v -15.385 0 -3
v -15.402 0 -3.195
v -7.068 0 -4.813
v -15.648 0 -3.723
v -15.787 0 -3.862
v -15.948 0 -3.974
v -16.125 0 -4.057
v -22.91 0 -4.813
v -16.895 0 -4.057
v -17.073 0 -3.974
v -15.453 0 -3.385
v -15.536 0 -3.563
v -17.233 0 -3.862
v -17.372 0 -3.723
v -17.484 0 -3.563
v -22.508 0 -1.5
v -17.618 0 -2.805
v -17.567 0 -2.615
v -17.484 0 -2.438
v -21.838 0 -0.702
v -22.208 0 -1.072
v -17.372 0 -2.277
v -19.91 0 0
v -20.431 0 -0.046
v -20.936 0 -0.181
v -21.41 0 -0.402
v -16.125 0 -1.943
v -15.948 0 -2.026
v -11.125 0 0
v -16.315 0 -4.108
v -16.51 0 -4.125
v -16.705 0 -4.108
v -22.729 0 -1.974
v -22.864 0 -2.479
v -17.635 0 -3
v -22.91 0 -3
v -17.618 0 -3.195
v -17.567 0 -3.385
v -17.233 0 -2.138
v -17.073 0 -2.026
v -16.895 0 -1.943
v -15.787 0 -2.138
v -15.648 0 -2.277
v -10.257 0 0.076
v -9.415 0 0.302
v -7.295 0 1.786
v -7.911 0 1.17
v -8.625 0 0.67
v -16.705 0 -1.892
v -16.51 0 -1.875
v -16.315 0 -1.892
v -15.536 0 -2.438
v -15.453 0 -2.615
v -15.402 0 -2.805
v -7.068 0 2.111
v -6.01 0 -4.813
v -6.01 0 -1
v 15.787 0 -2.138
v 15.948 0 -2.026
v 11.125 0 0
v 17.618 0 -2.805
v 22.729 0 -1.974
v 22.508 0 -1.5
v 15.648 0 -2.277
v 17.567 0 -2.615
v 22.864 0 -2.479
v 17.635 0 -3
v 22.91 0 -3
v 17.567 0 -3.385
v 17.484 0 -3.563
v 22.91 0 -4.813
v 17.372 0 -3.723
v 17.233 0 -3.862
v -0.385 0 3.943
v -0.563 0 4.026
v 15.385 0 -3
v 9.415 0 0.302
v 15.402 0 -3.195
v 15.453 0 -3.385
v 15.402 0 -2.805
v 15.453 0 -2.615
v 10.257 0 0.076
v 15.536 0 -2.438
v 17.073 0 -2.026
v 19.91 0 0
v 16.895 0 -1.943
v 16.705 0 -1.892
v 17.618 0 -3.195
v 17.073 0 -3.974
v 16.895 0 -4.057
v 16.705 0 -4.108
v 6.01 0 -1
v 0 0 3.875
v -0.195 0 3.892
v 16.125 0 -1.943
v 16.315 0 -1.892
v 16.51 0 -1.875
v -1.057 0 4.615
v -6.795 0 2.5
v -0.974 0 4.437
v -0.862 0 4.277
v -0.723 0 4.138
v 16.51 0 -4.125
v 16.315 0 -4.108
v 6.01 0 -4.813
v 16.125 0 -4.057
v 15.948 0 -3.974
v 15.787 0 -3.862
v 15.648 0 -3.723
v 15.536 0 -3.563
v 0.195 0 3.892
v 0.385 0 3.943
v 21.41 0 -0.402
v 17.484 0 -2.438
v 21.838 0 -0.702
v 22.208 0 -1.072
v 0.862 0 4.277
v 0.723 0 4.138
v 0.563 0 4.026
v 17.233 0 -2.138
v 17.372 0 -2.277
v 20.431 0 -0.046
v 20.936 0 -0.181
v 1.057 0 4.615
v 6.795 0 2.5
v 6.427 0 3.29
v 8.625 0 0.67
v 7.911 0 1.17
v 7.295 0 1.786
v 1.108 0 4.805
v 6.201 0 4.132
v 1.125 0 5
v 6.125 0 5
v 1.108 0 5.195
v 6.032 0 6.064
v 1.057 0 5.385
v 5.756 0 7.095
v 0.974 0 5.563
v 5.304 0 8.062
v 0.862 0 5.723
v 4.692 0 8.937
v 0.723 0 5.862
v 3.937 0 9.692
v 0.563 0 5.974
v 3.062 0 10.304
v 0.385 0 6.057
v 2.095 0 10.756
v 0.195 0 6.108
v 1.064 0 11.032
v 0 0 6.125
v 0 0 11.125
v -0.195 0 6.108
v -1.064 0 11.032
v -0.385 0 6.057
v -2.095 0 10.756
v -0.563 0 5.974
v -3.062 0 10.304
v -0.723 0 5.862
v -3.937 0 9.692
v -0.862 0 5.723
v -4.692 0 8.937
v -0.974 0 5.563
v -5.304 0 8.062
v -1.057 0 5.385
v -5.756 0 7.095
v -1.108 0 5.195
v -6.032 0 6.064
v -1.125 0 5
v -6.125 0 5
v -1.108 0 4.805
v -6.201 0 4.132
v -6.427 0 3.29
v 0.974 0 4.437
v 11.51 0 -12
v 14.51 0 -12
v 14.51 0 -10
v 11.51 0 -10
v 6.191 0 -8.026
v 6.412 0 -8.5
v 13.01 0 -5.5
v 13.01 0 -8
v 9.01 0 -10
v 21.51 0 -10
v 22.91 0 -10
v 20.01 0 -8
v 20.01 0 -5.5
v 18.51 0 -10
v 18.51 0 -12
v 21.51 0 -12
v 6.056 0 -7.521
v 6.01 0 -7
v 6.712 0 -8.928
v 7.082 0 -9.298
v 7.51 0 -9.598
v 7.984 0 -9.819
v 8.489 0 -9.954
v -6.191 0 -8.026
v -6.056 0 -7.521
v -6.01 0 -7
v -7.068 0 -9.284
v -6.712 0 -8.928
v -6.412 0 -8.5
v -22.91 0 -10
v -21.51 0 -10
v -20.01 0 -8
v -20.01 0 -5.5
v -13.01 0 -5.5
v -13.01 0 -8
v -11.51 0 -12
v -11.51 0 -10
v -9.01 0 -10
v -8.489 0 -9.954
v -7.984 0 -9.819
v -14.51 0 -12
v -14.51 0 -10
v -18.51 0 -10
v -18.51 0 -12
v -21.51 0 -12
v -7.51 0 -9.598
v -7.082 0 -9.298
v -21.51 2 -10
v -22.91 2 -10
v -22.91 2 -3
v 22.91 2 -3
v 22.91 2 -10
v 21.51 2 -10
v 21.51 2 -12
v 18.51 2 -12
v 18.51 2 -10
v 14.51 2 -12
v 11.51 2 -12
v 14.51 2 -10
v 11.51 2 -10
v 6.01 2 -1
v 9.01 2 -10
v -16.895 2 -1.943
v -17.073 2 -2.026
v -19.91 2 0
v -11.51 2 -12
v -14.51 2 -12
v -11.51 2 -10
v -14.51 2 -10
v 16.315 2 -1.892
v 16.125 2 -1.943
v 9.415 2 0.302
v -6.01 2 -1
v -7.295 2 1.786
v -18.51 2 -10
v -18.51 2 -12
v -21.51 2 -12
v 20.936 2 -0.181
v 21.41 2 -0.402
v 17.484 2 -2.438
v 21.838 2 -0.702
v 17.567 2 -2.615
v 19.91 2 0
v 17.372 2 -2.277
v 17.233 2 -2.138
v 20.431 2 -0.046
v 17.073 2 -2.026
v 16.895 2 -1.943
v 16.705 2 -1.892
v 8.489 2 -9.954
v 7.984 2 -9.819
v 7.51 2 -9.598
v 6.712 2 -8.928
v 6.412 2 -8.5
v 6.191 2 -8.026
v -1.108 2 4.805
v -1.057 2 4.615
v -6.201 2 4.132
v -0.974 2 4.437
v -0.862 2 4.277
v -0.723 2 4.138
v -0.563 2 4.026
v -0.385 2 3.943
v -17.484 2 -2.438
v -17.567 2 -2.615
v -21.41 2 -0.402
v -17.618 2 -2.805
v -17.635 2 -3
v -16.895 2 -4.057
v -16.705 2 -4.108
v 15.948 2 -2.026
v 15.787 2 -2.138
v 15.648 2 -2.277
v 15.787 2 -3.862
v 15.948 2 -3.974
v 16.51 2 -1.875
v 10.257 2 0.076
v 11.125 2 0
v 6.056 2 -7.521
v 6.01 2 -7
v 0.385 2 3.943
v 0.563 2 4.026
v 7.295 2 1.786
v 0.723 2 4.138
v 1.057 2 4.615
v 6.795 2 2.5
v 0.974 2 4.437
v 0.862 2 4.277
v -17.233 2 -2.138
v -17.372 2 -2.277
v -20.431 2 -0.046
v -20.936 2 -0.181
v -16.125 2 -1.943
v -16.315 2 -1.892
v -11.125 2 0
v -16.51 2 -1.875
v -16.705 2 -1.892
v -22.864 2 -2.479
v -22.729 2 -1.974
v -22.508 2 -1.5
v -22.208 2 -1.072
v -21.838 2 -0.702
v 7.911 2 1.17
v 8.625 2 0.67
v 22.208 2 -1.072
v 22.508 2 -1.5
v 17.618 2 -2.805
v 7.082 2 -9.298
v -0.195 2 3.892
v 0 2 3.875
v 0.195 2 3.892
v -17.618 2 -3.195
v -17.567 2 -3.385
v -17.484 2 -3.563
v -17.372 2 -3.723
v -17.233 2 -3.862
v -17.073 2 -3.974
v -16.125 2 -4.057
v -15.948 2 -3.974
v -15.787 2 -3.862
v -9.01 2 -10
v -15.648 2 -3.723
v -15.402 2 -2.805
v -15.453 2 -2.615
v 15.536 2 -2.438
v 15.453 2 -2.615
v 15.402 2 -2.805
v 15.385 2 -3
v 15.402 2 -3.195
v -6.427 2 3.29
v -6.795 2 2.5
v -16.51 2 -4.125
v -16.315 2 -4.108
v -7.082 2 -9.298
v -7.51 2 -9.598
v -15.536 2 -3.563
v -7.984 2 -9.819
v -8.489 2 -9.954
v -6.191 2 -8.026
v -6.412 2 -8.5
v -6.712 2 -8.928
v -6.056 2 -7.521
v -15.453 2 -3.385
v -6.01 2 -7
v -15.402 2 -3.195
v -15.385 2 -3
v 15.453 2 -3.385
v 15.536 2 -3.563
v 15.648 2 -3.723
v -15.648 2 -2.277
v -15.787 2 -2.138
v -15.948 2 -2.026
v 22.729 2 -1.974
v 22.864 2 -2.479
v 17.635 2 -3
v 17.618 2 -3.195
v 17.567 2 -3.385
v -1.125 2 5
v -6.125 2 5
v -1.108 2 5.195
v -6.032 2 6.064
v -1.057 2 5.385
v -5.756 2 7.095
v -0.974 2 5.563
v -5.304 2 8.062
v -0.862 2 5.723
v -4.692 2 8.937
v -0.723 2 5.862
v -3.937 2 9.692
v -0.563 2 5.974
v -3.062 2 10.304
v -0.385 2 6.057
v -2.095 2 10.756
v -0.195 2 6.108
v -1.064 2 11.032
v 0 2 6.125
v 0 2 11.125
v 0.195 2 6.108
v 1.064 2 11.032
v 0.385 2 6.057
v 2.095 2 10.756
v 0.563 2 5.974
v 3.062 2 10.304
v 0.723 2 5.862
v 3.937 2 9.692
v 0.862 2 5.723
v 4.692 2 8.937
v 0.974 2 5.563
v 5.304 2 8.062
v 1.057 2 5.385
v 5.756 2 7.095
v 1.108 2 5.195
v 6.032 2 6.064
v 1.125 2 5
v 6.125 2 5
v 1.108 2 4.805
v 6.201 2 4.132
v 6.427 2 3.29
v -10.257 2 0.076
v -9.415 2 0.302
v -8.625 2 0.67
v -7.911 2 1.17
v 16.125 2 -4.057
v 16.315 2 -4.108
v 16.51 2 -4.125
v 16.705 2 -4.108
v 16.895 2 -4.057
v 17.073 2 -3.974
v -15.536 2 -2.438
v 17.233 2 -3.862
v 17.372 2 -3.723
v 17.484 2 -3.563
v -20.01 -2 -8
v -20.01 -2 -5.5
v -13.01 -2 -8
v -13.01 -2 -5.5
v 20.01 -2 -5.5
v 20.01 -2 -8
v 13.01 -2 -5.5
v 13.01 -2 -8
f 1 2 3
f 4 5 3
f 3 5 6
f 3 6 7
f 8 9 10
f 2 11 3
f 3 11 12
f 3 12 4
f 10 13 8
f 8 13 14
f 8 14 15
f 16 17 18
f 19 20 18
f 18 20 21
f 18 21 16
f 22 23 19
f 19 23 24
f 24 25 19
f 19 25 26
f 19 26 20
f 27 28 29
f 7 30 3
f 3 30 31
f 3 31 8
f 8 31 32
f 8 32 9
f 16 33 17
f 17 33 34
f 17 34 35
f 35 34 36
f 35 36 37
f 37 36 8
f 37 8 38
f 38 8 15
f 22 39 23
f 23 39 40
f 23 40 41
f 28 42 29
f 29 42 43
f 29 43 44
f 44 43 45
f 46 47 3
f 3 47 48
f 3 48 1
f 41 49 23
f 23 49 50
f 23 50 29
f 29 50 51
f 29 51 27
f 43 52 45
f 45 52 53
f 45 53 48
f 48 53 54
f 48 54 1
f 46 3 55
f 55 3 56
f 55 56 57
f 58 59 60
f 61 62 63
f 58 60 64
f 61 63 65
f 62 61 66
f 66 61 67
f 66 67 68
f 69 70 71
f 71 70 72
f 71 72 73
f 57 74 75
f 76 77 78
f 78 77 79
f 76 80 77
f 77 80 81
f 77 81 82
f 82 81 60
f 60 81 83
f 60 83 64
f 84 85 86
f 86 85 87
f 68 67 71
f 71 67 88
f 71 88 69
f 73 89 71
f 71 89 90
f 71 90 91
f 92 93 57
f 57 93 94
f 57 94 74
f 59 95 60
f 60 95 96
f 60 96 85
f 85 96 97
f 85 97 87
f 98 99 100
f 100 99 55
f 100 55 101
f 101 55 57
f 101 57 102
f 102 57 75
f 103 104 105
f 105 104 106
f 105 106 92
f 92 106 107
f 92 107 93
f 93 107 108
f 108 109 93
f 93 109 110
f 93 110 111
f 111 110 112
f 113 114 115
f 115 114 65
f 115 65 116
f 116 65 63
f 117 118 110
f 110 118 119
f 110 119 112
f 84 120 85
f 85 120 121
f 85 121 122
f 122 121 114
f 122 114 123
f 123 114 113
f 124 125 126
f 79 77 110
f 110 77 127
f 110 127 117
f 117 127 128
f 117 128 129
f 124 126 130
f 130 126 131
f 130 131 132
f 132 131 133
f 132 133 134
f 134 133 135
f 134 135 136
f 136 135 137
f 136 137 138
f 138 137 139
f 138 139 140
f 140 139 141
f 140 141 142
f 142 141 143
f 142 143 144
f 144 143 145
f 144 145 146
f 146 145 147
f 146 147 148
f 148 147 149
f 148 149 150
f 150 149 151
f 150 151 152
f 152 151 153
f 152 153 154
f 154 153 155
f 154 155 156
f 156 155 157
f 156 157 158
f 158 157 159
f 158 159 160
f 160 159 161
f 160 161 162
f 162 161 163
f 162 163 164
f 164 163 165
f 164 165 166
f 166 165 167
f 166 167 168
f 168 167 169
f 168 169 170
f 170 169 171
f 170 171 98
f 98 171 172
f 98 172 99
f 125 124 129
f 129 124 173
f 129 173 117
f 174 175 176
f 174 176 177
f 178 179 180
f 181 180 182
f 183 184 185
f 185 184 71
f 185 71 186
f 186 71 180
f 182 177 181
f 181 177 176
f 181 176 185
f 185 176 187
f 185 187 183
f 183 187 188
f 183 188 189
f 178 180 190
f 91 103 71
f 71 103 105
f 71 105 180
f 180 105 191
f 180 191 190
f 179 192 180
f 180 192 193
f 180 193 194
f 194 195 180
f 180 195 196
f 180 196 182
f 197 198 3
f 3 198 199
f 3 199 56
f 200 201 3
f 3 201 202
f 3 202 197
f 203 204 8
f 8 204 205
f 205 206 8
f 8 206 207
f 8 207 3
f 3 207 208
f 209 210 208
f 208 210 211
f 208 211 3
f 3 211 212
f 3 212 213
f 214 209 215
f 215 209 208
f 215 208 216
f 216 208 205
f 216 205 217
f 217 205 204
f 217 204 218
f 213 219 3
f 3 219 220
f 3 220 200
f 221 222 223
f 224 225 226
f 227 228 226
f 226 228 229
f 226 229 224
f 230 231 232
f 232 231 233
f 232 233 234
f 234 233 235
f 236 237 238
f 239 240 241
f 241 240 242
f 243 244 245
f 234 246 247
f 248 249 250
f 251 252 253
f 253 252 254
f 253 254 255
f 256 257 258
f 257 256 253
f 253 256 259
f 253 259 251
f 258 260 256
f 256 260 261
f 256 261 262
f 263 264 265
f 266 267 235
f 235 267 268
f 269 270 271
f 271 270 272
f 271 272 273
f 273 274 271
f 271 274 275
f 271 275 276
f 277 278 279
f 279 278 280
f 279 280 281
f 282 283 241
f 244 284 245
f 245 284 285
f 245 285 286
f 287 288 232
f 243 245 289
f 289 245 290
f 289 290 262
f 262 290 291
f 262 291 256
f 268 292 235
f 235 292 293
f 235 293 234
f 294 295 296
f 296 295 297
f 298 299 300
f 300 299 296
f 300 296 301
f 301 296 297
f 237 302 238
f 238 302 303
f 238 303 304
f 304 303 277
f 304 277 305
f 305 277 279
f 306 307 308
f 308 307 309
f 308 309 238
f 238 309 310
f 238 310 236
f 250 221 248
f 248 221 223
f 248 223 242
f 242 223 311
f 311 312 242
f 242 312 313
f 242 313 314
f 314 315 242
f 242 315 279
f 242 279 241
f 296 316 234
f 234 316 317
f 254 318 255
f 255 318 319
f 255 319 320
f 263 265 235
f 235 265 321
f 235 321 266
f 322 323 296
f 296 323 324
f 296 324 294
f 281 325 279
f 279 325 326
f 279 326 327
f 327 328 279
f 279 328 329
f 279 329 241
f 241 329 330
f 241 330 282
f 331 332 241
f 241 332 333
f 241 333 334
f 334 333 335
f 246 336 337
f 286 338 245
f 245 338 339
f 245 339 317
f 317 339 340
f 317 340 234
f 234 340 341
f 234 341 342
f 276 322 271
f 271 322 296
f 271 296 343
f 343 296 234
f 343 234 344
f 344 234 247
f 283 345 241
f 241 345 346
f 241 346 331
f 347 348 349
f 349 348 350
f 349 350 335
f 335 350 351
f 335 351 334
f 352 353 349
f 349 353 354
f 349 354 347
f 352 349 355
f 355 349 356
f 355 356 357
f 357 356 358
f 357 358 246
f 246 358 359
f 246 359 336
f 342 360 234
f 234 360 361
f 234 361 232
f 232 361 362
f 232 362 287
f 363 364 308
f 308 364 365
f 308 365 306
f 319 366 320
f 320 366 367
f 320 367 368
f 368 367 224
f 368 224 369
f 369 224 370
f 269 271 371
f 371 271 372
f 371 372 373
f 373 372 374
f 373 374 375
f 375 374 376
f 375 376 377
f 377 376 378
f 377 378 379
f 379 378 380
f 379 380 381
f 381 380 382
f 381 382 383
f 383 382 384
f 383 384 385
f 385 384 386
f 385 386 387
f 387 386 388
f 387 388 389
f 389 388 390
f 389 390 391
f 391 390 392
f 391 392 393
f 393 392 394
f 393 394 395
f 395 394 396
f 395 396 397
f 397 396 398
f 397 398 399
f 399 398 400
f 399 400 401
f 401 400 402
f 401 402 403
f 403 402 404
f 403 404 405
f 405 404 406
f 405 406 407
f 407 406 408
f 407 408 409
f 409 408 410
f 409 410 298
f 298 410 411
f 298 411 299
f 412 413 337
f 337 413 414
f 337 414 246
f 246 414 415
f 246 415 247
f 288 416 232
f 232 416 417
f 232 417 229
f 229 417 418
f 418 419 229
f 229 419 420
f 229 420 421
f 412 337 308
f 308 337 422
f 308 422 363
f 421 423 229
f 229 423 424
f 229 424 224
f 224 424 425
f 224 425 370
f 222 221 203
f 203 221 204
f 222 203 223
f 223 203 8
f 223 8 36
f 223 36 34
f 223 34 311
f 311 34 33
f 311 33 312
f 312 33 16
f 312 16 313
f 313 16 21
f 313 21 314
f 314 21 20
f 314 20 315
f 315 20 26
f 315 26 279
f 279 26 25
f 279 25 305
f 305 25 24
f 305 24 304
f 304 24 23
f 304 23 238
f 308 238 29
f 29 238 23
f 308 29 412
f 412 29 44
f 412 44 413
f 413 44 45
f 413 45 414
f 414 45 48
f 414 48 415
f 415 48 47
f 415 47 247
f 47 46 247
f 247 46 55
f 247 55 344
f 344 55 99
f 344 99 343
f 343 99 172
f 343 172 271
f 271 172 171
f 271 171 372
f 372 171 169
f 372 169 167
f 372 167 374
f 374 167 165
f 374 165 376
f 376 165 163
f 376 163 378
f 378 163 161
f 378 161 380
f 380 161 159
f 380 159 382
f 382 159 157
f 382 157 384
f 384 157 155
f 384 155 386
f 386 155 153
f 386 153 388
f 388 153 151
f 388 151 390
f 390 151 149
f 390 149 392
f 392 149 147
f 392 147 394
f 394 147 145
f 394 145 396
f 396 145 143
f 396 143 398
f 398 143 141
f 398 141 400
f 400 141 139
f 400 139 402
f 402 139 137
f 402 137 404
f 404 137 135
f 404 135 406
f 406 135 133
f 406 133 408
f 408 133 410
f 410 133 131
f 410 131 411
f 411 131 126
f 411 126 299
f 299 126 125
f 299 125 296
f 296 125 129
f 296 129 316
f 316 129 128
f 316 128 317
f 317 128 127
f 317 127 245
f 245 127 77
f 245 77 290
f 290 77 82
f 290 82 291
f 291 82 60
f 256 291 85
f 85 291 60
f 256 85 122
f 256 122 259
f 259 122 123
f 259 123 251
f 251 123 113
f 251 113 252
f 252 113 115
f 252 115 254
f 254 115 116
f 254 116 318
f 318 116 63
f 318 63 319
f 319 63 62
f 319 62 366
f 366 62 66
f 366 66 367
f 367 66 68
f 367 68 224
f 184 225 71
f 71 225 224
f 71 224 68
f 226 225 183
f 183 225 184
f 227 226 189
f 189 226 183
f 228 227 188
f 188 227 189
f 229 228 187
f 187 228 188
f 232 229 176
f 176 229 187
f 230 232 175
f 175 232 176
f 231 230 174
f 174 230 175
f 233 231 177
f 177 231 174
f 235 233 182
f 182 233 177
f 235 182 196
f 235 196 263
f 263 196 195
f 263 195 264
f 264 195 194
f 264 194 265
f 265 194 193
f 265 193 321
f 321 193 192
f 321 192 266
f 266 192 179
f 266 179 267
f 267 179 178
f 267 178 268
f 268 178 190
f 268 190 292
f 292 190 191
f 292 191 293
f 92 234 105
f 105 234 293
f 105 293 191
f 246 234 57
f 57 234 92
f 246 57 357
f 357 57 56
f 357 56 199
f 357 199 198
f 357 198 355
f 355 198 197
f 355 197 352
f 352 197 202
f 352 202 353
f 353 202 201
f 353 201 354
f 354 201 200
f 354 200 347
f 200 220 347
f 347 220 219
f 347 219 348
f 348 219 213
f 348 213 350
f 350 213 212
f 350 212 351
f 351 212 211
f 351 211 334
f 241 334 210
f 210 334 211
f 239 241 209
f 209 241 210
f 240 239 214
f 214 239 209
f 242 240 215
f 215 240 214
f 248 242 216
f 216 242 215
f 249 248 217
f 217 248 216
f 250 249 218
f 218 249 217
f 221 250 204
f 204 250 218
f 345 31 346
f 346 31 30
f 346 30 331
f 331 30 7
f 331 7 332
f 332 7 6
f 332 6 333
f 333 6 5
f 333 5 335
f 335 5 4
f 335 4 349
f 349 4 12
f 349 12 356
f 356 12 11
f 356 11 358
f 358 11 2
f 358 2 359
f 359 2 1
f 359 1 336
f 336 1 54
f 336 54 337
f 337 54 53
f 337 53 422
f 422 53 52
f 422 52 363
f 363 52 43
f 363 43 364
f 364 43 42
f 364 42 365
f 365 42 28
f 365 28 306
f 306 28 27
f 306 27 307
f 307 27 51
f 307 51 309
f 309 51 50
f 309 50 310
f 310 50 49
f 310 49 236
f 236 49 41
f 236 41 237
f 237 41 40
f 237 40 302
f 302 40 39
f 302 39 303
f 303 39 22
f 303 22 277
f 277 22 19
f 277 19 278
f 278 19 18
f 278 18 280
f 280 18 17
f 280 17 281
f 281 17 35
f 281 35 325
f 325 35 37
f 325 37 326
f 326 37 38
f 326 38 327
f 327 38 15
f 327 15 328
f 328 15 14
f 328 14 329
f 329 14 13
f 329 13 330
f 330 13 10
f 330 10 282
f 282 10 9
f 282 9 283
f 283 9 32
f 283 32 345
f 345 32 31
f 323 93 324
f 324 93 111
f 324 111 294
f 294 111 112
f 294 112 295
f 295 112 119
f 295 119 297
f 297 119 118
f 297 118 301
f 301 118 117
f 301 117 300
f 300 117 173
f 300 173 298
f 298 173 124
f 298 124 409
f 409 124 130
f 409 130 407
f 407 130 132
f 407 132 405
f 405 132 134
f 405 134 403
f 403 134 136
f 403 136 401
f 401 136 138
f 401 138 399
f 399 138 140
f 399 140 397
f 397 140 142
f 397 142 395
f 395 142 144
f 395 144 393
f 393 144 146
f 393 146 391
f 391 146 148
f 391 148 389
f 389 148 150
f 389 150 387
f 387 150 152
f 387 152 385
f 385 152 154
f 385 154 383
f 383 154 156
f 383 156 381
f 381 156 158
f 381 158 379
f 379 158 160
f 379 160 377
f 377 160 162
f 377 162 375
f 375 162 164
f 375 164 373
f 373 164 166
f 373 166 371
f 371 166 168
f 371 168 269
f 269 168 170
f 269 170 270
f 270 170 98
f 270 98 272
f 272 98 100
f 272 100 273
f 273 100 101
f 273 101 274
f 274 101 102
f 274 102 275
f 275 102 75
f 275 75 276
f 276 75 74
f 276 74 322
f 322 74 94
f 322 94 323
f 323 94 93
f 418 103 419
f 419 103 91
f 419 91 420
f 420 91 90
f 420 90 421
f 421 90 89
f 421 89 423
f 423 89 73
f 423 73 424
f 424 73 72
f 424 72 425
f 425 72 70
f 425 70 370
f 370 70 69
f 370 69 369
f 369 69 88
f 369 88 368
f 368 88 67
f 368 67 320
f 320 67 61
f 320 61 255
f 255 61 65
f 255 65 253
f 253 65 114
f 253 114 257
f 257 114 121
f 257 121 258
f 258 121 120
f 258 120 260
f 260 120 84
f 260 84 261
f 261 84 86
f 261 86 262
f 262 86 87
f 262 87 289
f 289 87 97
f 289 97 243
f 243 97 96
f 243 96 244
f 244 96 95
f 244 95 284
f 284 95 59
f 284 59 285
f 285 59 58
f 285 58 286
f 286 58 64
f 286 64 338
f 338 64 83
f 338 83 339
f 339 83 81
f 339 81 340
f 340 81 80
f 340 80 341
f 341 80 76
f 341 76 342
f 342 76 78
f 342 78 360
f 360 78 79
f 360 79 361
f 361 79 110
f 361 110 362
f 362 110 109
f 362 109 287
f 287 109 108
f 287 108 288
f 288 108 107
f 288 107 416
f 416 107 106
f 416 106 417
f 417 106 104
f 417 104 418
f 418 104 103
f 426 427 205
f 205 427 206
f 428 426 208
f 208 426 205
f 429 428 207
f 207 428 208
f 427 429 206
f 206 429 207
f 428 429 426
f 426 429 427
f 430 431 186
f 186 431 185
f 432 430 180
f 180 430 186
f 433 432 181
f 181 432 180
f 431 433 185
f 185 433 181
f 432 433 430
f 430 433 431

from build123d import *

# Parameters (mm, degrees)
CROQUIS1_R              = 1.125
SALIENTE_EXTRUIR1_DEPTH = 2
CROQUIS3_W              = 7
CROQUIS3_H              = 2.5
SALIENTE_EXTRUIR2_DEPTH = 2


with BuildPart() as part:
    # Croquis1 → Saliente-Extruir1 (new body)
    with BuildSketch(Plane(origin=(0, 0, 0), x_dir=(1, 0, 0), z_dir=(0, 1, 0))):
        with BuildLine():
            Line((19.91, 0), (11.125, 0))
            ThreePointArc((11.125, 0), (7.589466094, -1.464466094), (6.125, -5))
            ThreePointArc((6.125, -5), (0, -11.125), (-6.125, -5))
            ThreePointArc((-6.125, -5), (-7.589466094, -1.464466094), (-11.125, 0))
            Line((-11.125, 0), (-19.91, 0))
            ThreePointArc((-19.91, 0), (-22.031320344, 0.878679656), (-22.91, 3))
            Line((-22.91, 3), (-22.91, 10))
            Line((-22.91, 10), (-21.51, 10))
            Line((-21.51, 10), (-21.51, 12))
            Line((-21.51, 12), (-18.51, 12))
            Line((-18.51, 12), (-18.51, 10))
            Line((-18.51, 10), (-14.51, 10))
            Line((-14.51, 10), (-14.51, 12))
            Line((-14.51, 12), (-11.51, 12))
            Line((-11.51, 12), (-11.51, 10))
            Line((-11.51, 10), (-9.01, 10))
            ThreePointArc((-9.01, 10), (-6.888679656, 9.121320344), (-6.01, 7))
            Line((-6.01, 7), (-6.01, 1))
            Line((-6.01, 1), (6.01, 1))
            Line((6.01, 1), (6.01, 7))
            ThreePointArc((6.01, 7), (6.888679656, 9.121320344), (9.01, 10))
            Line((9.01, 10), (11.51, 10))
            Line((11.51, 10), (11.51, 12))
            Line((11.51, 12), (14.51, 12))
            Line((14.51, 12), (14.51, 10))
            Line((14.51, 10), (18.51, 10))
            Line((18.51, 10), (18.51, 12))
            Line((18.51, 12), (21.51, 12))
            Line((21.51, 12), (21.51, 10))
            Line((21.51, 10), (22.91, 10))
            Line((22.91, 10), (22.91, 3))
            ThreePointArc((22.91, 3), (22.031320344, 0.878679656), (19.91, 0))
        make_face()
        with Locations(Location((-16.51, 3, 0), (0, 0, 270))):
            Circle(CROQUIS1_R, mode=Mode.SUBTRACT)
        with Locations(Location((16.51, 3, 0), (0, 0, 90))):
            Circle(CROQUIS1_R, mode=Mode.SUBTRACT)
        with Locations(Location((0, -5, 0), (0, 0, 270))):
            Circle(CROQUIS1_R, mode=Mode.SUBTRACT)
    extrude(amount=SALIENTE_EXTRUIR1_DEPTH)

    # Croquis3 → Saliente-Extruir2 (add)
    with BuildSketch(Plane.XZ):
        with Locations((-16.51, -6.75)):
            Rectangle(CROQUIS3_W, CROQUIS3_H)
        with Locations((16.51, -6.75)):
            Rectangle(CROQUIS3_W, CROQUIS3_H)
    extrude(amount=SALIENTE_EXTRUIR2_DEPTH)


solid = part.part
